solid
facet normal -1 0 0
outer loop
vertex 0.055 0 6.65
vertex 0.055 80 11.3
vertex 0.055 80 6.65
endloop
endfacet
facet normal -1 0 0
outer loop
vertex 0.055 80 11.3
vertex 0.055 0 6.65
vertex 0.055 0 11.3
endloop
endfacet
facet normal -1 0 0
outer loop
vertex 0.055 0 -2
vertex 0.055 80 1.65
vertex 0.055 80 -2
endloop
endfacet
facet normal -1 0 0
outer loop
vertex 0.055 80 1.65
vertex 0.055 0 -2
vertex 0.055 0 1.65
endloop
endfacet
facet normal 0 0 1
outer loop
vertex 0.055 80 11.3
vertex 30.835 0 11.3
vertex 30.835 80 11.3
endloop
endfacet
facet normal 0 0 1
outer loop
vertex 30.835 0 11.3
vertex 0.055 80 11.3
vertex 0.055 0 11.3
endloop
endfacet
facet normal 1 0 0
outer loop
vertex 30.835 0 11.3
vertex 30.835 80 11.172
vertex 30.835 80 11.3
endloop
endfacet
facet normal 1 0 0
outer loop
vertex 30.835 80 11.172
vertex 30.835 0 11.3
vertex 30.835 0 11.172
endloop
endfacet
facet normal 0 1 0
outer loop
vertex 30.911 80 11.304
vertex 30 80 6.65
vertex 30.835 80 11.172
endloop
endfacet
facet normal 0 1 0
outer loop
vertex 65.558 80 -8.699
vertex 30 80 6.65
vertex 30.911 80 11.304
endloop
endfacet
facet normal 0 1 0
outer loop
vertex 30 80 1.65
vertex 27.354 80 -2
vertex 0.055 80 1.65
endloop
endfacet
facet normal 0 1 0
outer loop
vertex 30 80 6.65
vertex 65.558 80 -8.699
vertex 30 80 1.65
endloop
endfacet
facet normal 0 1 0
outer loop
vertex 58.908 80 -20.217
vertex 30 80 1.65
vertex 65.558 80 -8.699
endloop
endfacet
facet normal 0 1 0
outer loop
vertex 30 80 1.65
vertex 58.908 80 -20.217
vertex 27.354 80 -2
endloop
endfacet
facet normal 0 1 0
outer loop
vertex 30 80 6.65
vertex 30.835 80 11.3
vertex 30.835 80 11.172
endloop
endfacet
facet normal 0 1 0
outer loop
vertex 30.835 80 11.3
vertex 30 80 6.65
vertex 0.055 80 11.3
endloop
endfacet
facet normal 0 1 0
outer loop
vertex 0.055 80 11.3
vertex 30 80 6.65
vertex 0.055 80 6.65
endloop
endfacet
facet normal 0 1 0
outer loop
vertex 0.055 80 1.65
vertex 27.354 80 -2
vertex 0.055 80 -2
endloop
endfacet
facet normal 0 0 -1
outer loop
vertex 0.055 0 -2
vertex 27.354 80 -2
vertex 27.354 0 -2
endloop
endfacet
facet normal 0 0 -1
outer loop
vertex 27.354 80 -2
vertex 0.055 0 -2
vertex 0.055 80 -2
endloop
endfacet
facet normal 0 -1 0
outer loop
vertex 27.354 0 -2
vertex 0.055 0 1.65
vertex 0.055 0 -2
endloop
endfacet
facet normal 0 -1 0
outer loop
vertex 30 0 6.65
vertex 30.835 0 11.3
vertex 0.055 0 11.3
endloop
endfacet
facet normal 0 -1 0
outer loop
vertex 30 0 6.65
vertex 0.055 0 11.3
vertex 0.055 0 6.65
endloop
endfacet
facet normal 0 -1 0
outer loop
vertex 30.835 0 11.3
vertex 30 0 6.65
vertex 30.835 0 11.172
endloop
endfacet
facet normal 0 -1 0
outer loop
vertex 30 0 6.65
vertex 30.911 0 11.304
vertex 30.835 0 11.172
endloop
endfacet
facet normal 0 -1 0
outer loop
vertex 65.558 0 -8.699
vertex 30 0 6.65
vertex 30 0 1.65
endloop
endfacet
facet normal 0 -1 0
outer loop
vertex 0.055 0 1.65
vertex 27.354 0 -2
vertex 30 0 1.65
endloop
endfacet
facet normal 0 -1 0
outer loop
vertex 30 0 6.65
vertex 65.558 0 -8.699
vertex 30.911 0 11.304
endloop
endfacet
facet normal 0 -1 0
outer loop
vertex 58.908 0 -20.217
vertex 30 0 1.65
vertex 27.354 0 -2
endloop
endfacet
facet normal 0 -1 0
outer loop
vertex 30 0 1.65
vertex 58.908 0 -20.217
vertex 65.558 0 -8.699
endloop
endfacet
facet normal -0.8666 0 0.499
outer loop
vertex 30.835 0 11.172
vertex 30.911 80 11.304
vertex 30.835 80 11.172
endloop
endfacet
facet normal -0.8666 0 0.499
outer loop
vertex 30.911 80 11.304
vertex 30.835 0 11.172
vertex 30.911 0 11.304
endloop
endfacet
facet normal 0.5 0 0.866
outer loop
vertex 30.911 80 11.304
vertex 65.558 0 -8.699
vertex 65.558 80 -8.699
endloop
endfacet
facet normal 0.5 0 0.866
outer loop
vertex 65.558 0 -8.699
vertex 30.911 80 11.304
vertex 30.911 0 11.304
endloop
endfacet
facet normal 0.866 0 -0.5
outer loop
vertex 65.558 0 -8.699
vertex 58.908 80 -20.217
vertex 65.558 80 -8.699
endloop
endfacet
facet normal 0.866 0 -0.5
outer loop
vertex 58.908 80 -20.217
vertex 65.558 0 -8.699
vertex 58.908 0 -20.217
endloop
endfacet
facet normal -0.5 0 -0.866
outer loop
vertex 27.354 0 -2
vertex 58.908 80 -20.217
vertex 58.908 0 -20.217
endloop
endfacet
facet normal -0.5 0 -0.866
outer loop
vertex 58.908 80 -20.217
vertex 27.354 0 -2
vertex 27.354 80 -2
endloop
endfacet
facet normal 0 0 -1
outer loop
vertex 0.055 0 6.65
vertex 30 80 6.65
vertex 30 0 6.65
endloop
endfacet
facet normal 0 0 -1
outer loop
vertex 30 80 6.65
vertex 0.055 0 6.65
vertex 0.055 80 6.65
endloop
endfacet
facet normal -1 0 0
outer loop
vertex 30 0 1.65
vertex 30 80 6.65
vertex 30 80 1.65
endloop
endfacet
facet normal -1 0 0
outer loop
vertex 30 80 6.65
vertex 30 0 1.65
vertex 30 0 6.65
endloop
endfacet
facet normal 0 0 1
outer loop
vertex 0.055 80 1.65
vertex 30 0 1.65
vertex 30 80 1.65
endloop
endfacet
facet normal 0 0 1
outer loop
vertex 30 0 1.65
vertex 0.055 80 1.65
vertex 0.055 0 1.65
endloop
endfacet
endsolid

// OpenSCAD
difference(){
    translate([-35,0,-2])scale([1.9,1.9,1.9])union(){
        translate([18.45,0])cube([16.2,42.1052632,7]);
        translate([31.19,0,0.94])rotate([0,30])cube([21.056,42.1052632,7]);
    }
    translate([0,0,1.65])cube([30,80,5]);
    //translate([36.8,0,1.11])rotate([0,30])cube([40,30,5]);
}
